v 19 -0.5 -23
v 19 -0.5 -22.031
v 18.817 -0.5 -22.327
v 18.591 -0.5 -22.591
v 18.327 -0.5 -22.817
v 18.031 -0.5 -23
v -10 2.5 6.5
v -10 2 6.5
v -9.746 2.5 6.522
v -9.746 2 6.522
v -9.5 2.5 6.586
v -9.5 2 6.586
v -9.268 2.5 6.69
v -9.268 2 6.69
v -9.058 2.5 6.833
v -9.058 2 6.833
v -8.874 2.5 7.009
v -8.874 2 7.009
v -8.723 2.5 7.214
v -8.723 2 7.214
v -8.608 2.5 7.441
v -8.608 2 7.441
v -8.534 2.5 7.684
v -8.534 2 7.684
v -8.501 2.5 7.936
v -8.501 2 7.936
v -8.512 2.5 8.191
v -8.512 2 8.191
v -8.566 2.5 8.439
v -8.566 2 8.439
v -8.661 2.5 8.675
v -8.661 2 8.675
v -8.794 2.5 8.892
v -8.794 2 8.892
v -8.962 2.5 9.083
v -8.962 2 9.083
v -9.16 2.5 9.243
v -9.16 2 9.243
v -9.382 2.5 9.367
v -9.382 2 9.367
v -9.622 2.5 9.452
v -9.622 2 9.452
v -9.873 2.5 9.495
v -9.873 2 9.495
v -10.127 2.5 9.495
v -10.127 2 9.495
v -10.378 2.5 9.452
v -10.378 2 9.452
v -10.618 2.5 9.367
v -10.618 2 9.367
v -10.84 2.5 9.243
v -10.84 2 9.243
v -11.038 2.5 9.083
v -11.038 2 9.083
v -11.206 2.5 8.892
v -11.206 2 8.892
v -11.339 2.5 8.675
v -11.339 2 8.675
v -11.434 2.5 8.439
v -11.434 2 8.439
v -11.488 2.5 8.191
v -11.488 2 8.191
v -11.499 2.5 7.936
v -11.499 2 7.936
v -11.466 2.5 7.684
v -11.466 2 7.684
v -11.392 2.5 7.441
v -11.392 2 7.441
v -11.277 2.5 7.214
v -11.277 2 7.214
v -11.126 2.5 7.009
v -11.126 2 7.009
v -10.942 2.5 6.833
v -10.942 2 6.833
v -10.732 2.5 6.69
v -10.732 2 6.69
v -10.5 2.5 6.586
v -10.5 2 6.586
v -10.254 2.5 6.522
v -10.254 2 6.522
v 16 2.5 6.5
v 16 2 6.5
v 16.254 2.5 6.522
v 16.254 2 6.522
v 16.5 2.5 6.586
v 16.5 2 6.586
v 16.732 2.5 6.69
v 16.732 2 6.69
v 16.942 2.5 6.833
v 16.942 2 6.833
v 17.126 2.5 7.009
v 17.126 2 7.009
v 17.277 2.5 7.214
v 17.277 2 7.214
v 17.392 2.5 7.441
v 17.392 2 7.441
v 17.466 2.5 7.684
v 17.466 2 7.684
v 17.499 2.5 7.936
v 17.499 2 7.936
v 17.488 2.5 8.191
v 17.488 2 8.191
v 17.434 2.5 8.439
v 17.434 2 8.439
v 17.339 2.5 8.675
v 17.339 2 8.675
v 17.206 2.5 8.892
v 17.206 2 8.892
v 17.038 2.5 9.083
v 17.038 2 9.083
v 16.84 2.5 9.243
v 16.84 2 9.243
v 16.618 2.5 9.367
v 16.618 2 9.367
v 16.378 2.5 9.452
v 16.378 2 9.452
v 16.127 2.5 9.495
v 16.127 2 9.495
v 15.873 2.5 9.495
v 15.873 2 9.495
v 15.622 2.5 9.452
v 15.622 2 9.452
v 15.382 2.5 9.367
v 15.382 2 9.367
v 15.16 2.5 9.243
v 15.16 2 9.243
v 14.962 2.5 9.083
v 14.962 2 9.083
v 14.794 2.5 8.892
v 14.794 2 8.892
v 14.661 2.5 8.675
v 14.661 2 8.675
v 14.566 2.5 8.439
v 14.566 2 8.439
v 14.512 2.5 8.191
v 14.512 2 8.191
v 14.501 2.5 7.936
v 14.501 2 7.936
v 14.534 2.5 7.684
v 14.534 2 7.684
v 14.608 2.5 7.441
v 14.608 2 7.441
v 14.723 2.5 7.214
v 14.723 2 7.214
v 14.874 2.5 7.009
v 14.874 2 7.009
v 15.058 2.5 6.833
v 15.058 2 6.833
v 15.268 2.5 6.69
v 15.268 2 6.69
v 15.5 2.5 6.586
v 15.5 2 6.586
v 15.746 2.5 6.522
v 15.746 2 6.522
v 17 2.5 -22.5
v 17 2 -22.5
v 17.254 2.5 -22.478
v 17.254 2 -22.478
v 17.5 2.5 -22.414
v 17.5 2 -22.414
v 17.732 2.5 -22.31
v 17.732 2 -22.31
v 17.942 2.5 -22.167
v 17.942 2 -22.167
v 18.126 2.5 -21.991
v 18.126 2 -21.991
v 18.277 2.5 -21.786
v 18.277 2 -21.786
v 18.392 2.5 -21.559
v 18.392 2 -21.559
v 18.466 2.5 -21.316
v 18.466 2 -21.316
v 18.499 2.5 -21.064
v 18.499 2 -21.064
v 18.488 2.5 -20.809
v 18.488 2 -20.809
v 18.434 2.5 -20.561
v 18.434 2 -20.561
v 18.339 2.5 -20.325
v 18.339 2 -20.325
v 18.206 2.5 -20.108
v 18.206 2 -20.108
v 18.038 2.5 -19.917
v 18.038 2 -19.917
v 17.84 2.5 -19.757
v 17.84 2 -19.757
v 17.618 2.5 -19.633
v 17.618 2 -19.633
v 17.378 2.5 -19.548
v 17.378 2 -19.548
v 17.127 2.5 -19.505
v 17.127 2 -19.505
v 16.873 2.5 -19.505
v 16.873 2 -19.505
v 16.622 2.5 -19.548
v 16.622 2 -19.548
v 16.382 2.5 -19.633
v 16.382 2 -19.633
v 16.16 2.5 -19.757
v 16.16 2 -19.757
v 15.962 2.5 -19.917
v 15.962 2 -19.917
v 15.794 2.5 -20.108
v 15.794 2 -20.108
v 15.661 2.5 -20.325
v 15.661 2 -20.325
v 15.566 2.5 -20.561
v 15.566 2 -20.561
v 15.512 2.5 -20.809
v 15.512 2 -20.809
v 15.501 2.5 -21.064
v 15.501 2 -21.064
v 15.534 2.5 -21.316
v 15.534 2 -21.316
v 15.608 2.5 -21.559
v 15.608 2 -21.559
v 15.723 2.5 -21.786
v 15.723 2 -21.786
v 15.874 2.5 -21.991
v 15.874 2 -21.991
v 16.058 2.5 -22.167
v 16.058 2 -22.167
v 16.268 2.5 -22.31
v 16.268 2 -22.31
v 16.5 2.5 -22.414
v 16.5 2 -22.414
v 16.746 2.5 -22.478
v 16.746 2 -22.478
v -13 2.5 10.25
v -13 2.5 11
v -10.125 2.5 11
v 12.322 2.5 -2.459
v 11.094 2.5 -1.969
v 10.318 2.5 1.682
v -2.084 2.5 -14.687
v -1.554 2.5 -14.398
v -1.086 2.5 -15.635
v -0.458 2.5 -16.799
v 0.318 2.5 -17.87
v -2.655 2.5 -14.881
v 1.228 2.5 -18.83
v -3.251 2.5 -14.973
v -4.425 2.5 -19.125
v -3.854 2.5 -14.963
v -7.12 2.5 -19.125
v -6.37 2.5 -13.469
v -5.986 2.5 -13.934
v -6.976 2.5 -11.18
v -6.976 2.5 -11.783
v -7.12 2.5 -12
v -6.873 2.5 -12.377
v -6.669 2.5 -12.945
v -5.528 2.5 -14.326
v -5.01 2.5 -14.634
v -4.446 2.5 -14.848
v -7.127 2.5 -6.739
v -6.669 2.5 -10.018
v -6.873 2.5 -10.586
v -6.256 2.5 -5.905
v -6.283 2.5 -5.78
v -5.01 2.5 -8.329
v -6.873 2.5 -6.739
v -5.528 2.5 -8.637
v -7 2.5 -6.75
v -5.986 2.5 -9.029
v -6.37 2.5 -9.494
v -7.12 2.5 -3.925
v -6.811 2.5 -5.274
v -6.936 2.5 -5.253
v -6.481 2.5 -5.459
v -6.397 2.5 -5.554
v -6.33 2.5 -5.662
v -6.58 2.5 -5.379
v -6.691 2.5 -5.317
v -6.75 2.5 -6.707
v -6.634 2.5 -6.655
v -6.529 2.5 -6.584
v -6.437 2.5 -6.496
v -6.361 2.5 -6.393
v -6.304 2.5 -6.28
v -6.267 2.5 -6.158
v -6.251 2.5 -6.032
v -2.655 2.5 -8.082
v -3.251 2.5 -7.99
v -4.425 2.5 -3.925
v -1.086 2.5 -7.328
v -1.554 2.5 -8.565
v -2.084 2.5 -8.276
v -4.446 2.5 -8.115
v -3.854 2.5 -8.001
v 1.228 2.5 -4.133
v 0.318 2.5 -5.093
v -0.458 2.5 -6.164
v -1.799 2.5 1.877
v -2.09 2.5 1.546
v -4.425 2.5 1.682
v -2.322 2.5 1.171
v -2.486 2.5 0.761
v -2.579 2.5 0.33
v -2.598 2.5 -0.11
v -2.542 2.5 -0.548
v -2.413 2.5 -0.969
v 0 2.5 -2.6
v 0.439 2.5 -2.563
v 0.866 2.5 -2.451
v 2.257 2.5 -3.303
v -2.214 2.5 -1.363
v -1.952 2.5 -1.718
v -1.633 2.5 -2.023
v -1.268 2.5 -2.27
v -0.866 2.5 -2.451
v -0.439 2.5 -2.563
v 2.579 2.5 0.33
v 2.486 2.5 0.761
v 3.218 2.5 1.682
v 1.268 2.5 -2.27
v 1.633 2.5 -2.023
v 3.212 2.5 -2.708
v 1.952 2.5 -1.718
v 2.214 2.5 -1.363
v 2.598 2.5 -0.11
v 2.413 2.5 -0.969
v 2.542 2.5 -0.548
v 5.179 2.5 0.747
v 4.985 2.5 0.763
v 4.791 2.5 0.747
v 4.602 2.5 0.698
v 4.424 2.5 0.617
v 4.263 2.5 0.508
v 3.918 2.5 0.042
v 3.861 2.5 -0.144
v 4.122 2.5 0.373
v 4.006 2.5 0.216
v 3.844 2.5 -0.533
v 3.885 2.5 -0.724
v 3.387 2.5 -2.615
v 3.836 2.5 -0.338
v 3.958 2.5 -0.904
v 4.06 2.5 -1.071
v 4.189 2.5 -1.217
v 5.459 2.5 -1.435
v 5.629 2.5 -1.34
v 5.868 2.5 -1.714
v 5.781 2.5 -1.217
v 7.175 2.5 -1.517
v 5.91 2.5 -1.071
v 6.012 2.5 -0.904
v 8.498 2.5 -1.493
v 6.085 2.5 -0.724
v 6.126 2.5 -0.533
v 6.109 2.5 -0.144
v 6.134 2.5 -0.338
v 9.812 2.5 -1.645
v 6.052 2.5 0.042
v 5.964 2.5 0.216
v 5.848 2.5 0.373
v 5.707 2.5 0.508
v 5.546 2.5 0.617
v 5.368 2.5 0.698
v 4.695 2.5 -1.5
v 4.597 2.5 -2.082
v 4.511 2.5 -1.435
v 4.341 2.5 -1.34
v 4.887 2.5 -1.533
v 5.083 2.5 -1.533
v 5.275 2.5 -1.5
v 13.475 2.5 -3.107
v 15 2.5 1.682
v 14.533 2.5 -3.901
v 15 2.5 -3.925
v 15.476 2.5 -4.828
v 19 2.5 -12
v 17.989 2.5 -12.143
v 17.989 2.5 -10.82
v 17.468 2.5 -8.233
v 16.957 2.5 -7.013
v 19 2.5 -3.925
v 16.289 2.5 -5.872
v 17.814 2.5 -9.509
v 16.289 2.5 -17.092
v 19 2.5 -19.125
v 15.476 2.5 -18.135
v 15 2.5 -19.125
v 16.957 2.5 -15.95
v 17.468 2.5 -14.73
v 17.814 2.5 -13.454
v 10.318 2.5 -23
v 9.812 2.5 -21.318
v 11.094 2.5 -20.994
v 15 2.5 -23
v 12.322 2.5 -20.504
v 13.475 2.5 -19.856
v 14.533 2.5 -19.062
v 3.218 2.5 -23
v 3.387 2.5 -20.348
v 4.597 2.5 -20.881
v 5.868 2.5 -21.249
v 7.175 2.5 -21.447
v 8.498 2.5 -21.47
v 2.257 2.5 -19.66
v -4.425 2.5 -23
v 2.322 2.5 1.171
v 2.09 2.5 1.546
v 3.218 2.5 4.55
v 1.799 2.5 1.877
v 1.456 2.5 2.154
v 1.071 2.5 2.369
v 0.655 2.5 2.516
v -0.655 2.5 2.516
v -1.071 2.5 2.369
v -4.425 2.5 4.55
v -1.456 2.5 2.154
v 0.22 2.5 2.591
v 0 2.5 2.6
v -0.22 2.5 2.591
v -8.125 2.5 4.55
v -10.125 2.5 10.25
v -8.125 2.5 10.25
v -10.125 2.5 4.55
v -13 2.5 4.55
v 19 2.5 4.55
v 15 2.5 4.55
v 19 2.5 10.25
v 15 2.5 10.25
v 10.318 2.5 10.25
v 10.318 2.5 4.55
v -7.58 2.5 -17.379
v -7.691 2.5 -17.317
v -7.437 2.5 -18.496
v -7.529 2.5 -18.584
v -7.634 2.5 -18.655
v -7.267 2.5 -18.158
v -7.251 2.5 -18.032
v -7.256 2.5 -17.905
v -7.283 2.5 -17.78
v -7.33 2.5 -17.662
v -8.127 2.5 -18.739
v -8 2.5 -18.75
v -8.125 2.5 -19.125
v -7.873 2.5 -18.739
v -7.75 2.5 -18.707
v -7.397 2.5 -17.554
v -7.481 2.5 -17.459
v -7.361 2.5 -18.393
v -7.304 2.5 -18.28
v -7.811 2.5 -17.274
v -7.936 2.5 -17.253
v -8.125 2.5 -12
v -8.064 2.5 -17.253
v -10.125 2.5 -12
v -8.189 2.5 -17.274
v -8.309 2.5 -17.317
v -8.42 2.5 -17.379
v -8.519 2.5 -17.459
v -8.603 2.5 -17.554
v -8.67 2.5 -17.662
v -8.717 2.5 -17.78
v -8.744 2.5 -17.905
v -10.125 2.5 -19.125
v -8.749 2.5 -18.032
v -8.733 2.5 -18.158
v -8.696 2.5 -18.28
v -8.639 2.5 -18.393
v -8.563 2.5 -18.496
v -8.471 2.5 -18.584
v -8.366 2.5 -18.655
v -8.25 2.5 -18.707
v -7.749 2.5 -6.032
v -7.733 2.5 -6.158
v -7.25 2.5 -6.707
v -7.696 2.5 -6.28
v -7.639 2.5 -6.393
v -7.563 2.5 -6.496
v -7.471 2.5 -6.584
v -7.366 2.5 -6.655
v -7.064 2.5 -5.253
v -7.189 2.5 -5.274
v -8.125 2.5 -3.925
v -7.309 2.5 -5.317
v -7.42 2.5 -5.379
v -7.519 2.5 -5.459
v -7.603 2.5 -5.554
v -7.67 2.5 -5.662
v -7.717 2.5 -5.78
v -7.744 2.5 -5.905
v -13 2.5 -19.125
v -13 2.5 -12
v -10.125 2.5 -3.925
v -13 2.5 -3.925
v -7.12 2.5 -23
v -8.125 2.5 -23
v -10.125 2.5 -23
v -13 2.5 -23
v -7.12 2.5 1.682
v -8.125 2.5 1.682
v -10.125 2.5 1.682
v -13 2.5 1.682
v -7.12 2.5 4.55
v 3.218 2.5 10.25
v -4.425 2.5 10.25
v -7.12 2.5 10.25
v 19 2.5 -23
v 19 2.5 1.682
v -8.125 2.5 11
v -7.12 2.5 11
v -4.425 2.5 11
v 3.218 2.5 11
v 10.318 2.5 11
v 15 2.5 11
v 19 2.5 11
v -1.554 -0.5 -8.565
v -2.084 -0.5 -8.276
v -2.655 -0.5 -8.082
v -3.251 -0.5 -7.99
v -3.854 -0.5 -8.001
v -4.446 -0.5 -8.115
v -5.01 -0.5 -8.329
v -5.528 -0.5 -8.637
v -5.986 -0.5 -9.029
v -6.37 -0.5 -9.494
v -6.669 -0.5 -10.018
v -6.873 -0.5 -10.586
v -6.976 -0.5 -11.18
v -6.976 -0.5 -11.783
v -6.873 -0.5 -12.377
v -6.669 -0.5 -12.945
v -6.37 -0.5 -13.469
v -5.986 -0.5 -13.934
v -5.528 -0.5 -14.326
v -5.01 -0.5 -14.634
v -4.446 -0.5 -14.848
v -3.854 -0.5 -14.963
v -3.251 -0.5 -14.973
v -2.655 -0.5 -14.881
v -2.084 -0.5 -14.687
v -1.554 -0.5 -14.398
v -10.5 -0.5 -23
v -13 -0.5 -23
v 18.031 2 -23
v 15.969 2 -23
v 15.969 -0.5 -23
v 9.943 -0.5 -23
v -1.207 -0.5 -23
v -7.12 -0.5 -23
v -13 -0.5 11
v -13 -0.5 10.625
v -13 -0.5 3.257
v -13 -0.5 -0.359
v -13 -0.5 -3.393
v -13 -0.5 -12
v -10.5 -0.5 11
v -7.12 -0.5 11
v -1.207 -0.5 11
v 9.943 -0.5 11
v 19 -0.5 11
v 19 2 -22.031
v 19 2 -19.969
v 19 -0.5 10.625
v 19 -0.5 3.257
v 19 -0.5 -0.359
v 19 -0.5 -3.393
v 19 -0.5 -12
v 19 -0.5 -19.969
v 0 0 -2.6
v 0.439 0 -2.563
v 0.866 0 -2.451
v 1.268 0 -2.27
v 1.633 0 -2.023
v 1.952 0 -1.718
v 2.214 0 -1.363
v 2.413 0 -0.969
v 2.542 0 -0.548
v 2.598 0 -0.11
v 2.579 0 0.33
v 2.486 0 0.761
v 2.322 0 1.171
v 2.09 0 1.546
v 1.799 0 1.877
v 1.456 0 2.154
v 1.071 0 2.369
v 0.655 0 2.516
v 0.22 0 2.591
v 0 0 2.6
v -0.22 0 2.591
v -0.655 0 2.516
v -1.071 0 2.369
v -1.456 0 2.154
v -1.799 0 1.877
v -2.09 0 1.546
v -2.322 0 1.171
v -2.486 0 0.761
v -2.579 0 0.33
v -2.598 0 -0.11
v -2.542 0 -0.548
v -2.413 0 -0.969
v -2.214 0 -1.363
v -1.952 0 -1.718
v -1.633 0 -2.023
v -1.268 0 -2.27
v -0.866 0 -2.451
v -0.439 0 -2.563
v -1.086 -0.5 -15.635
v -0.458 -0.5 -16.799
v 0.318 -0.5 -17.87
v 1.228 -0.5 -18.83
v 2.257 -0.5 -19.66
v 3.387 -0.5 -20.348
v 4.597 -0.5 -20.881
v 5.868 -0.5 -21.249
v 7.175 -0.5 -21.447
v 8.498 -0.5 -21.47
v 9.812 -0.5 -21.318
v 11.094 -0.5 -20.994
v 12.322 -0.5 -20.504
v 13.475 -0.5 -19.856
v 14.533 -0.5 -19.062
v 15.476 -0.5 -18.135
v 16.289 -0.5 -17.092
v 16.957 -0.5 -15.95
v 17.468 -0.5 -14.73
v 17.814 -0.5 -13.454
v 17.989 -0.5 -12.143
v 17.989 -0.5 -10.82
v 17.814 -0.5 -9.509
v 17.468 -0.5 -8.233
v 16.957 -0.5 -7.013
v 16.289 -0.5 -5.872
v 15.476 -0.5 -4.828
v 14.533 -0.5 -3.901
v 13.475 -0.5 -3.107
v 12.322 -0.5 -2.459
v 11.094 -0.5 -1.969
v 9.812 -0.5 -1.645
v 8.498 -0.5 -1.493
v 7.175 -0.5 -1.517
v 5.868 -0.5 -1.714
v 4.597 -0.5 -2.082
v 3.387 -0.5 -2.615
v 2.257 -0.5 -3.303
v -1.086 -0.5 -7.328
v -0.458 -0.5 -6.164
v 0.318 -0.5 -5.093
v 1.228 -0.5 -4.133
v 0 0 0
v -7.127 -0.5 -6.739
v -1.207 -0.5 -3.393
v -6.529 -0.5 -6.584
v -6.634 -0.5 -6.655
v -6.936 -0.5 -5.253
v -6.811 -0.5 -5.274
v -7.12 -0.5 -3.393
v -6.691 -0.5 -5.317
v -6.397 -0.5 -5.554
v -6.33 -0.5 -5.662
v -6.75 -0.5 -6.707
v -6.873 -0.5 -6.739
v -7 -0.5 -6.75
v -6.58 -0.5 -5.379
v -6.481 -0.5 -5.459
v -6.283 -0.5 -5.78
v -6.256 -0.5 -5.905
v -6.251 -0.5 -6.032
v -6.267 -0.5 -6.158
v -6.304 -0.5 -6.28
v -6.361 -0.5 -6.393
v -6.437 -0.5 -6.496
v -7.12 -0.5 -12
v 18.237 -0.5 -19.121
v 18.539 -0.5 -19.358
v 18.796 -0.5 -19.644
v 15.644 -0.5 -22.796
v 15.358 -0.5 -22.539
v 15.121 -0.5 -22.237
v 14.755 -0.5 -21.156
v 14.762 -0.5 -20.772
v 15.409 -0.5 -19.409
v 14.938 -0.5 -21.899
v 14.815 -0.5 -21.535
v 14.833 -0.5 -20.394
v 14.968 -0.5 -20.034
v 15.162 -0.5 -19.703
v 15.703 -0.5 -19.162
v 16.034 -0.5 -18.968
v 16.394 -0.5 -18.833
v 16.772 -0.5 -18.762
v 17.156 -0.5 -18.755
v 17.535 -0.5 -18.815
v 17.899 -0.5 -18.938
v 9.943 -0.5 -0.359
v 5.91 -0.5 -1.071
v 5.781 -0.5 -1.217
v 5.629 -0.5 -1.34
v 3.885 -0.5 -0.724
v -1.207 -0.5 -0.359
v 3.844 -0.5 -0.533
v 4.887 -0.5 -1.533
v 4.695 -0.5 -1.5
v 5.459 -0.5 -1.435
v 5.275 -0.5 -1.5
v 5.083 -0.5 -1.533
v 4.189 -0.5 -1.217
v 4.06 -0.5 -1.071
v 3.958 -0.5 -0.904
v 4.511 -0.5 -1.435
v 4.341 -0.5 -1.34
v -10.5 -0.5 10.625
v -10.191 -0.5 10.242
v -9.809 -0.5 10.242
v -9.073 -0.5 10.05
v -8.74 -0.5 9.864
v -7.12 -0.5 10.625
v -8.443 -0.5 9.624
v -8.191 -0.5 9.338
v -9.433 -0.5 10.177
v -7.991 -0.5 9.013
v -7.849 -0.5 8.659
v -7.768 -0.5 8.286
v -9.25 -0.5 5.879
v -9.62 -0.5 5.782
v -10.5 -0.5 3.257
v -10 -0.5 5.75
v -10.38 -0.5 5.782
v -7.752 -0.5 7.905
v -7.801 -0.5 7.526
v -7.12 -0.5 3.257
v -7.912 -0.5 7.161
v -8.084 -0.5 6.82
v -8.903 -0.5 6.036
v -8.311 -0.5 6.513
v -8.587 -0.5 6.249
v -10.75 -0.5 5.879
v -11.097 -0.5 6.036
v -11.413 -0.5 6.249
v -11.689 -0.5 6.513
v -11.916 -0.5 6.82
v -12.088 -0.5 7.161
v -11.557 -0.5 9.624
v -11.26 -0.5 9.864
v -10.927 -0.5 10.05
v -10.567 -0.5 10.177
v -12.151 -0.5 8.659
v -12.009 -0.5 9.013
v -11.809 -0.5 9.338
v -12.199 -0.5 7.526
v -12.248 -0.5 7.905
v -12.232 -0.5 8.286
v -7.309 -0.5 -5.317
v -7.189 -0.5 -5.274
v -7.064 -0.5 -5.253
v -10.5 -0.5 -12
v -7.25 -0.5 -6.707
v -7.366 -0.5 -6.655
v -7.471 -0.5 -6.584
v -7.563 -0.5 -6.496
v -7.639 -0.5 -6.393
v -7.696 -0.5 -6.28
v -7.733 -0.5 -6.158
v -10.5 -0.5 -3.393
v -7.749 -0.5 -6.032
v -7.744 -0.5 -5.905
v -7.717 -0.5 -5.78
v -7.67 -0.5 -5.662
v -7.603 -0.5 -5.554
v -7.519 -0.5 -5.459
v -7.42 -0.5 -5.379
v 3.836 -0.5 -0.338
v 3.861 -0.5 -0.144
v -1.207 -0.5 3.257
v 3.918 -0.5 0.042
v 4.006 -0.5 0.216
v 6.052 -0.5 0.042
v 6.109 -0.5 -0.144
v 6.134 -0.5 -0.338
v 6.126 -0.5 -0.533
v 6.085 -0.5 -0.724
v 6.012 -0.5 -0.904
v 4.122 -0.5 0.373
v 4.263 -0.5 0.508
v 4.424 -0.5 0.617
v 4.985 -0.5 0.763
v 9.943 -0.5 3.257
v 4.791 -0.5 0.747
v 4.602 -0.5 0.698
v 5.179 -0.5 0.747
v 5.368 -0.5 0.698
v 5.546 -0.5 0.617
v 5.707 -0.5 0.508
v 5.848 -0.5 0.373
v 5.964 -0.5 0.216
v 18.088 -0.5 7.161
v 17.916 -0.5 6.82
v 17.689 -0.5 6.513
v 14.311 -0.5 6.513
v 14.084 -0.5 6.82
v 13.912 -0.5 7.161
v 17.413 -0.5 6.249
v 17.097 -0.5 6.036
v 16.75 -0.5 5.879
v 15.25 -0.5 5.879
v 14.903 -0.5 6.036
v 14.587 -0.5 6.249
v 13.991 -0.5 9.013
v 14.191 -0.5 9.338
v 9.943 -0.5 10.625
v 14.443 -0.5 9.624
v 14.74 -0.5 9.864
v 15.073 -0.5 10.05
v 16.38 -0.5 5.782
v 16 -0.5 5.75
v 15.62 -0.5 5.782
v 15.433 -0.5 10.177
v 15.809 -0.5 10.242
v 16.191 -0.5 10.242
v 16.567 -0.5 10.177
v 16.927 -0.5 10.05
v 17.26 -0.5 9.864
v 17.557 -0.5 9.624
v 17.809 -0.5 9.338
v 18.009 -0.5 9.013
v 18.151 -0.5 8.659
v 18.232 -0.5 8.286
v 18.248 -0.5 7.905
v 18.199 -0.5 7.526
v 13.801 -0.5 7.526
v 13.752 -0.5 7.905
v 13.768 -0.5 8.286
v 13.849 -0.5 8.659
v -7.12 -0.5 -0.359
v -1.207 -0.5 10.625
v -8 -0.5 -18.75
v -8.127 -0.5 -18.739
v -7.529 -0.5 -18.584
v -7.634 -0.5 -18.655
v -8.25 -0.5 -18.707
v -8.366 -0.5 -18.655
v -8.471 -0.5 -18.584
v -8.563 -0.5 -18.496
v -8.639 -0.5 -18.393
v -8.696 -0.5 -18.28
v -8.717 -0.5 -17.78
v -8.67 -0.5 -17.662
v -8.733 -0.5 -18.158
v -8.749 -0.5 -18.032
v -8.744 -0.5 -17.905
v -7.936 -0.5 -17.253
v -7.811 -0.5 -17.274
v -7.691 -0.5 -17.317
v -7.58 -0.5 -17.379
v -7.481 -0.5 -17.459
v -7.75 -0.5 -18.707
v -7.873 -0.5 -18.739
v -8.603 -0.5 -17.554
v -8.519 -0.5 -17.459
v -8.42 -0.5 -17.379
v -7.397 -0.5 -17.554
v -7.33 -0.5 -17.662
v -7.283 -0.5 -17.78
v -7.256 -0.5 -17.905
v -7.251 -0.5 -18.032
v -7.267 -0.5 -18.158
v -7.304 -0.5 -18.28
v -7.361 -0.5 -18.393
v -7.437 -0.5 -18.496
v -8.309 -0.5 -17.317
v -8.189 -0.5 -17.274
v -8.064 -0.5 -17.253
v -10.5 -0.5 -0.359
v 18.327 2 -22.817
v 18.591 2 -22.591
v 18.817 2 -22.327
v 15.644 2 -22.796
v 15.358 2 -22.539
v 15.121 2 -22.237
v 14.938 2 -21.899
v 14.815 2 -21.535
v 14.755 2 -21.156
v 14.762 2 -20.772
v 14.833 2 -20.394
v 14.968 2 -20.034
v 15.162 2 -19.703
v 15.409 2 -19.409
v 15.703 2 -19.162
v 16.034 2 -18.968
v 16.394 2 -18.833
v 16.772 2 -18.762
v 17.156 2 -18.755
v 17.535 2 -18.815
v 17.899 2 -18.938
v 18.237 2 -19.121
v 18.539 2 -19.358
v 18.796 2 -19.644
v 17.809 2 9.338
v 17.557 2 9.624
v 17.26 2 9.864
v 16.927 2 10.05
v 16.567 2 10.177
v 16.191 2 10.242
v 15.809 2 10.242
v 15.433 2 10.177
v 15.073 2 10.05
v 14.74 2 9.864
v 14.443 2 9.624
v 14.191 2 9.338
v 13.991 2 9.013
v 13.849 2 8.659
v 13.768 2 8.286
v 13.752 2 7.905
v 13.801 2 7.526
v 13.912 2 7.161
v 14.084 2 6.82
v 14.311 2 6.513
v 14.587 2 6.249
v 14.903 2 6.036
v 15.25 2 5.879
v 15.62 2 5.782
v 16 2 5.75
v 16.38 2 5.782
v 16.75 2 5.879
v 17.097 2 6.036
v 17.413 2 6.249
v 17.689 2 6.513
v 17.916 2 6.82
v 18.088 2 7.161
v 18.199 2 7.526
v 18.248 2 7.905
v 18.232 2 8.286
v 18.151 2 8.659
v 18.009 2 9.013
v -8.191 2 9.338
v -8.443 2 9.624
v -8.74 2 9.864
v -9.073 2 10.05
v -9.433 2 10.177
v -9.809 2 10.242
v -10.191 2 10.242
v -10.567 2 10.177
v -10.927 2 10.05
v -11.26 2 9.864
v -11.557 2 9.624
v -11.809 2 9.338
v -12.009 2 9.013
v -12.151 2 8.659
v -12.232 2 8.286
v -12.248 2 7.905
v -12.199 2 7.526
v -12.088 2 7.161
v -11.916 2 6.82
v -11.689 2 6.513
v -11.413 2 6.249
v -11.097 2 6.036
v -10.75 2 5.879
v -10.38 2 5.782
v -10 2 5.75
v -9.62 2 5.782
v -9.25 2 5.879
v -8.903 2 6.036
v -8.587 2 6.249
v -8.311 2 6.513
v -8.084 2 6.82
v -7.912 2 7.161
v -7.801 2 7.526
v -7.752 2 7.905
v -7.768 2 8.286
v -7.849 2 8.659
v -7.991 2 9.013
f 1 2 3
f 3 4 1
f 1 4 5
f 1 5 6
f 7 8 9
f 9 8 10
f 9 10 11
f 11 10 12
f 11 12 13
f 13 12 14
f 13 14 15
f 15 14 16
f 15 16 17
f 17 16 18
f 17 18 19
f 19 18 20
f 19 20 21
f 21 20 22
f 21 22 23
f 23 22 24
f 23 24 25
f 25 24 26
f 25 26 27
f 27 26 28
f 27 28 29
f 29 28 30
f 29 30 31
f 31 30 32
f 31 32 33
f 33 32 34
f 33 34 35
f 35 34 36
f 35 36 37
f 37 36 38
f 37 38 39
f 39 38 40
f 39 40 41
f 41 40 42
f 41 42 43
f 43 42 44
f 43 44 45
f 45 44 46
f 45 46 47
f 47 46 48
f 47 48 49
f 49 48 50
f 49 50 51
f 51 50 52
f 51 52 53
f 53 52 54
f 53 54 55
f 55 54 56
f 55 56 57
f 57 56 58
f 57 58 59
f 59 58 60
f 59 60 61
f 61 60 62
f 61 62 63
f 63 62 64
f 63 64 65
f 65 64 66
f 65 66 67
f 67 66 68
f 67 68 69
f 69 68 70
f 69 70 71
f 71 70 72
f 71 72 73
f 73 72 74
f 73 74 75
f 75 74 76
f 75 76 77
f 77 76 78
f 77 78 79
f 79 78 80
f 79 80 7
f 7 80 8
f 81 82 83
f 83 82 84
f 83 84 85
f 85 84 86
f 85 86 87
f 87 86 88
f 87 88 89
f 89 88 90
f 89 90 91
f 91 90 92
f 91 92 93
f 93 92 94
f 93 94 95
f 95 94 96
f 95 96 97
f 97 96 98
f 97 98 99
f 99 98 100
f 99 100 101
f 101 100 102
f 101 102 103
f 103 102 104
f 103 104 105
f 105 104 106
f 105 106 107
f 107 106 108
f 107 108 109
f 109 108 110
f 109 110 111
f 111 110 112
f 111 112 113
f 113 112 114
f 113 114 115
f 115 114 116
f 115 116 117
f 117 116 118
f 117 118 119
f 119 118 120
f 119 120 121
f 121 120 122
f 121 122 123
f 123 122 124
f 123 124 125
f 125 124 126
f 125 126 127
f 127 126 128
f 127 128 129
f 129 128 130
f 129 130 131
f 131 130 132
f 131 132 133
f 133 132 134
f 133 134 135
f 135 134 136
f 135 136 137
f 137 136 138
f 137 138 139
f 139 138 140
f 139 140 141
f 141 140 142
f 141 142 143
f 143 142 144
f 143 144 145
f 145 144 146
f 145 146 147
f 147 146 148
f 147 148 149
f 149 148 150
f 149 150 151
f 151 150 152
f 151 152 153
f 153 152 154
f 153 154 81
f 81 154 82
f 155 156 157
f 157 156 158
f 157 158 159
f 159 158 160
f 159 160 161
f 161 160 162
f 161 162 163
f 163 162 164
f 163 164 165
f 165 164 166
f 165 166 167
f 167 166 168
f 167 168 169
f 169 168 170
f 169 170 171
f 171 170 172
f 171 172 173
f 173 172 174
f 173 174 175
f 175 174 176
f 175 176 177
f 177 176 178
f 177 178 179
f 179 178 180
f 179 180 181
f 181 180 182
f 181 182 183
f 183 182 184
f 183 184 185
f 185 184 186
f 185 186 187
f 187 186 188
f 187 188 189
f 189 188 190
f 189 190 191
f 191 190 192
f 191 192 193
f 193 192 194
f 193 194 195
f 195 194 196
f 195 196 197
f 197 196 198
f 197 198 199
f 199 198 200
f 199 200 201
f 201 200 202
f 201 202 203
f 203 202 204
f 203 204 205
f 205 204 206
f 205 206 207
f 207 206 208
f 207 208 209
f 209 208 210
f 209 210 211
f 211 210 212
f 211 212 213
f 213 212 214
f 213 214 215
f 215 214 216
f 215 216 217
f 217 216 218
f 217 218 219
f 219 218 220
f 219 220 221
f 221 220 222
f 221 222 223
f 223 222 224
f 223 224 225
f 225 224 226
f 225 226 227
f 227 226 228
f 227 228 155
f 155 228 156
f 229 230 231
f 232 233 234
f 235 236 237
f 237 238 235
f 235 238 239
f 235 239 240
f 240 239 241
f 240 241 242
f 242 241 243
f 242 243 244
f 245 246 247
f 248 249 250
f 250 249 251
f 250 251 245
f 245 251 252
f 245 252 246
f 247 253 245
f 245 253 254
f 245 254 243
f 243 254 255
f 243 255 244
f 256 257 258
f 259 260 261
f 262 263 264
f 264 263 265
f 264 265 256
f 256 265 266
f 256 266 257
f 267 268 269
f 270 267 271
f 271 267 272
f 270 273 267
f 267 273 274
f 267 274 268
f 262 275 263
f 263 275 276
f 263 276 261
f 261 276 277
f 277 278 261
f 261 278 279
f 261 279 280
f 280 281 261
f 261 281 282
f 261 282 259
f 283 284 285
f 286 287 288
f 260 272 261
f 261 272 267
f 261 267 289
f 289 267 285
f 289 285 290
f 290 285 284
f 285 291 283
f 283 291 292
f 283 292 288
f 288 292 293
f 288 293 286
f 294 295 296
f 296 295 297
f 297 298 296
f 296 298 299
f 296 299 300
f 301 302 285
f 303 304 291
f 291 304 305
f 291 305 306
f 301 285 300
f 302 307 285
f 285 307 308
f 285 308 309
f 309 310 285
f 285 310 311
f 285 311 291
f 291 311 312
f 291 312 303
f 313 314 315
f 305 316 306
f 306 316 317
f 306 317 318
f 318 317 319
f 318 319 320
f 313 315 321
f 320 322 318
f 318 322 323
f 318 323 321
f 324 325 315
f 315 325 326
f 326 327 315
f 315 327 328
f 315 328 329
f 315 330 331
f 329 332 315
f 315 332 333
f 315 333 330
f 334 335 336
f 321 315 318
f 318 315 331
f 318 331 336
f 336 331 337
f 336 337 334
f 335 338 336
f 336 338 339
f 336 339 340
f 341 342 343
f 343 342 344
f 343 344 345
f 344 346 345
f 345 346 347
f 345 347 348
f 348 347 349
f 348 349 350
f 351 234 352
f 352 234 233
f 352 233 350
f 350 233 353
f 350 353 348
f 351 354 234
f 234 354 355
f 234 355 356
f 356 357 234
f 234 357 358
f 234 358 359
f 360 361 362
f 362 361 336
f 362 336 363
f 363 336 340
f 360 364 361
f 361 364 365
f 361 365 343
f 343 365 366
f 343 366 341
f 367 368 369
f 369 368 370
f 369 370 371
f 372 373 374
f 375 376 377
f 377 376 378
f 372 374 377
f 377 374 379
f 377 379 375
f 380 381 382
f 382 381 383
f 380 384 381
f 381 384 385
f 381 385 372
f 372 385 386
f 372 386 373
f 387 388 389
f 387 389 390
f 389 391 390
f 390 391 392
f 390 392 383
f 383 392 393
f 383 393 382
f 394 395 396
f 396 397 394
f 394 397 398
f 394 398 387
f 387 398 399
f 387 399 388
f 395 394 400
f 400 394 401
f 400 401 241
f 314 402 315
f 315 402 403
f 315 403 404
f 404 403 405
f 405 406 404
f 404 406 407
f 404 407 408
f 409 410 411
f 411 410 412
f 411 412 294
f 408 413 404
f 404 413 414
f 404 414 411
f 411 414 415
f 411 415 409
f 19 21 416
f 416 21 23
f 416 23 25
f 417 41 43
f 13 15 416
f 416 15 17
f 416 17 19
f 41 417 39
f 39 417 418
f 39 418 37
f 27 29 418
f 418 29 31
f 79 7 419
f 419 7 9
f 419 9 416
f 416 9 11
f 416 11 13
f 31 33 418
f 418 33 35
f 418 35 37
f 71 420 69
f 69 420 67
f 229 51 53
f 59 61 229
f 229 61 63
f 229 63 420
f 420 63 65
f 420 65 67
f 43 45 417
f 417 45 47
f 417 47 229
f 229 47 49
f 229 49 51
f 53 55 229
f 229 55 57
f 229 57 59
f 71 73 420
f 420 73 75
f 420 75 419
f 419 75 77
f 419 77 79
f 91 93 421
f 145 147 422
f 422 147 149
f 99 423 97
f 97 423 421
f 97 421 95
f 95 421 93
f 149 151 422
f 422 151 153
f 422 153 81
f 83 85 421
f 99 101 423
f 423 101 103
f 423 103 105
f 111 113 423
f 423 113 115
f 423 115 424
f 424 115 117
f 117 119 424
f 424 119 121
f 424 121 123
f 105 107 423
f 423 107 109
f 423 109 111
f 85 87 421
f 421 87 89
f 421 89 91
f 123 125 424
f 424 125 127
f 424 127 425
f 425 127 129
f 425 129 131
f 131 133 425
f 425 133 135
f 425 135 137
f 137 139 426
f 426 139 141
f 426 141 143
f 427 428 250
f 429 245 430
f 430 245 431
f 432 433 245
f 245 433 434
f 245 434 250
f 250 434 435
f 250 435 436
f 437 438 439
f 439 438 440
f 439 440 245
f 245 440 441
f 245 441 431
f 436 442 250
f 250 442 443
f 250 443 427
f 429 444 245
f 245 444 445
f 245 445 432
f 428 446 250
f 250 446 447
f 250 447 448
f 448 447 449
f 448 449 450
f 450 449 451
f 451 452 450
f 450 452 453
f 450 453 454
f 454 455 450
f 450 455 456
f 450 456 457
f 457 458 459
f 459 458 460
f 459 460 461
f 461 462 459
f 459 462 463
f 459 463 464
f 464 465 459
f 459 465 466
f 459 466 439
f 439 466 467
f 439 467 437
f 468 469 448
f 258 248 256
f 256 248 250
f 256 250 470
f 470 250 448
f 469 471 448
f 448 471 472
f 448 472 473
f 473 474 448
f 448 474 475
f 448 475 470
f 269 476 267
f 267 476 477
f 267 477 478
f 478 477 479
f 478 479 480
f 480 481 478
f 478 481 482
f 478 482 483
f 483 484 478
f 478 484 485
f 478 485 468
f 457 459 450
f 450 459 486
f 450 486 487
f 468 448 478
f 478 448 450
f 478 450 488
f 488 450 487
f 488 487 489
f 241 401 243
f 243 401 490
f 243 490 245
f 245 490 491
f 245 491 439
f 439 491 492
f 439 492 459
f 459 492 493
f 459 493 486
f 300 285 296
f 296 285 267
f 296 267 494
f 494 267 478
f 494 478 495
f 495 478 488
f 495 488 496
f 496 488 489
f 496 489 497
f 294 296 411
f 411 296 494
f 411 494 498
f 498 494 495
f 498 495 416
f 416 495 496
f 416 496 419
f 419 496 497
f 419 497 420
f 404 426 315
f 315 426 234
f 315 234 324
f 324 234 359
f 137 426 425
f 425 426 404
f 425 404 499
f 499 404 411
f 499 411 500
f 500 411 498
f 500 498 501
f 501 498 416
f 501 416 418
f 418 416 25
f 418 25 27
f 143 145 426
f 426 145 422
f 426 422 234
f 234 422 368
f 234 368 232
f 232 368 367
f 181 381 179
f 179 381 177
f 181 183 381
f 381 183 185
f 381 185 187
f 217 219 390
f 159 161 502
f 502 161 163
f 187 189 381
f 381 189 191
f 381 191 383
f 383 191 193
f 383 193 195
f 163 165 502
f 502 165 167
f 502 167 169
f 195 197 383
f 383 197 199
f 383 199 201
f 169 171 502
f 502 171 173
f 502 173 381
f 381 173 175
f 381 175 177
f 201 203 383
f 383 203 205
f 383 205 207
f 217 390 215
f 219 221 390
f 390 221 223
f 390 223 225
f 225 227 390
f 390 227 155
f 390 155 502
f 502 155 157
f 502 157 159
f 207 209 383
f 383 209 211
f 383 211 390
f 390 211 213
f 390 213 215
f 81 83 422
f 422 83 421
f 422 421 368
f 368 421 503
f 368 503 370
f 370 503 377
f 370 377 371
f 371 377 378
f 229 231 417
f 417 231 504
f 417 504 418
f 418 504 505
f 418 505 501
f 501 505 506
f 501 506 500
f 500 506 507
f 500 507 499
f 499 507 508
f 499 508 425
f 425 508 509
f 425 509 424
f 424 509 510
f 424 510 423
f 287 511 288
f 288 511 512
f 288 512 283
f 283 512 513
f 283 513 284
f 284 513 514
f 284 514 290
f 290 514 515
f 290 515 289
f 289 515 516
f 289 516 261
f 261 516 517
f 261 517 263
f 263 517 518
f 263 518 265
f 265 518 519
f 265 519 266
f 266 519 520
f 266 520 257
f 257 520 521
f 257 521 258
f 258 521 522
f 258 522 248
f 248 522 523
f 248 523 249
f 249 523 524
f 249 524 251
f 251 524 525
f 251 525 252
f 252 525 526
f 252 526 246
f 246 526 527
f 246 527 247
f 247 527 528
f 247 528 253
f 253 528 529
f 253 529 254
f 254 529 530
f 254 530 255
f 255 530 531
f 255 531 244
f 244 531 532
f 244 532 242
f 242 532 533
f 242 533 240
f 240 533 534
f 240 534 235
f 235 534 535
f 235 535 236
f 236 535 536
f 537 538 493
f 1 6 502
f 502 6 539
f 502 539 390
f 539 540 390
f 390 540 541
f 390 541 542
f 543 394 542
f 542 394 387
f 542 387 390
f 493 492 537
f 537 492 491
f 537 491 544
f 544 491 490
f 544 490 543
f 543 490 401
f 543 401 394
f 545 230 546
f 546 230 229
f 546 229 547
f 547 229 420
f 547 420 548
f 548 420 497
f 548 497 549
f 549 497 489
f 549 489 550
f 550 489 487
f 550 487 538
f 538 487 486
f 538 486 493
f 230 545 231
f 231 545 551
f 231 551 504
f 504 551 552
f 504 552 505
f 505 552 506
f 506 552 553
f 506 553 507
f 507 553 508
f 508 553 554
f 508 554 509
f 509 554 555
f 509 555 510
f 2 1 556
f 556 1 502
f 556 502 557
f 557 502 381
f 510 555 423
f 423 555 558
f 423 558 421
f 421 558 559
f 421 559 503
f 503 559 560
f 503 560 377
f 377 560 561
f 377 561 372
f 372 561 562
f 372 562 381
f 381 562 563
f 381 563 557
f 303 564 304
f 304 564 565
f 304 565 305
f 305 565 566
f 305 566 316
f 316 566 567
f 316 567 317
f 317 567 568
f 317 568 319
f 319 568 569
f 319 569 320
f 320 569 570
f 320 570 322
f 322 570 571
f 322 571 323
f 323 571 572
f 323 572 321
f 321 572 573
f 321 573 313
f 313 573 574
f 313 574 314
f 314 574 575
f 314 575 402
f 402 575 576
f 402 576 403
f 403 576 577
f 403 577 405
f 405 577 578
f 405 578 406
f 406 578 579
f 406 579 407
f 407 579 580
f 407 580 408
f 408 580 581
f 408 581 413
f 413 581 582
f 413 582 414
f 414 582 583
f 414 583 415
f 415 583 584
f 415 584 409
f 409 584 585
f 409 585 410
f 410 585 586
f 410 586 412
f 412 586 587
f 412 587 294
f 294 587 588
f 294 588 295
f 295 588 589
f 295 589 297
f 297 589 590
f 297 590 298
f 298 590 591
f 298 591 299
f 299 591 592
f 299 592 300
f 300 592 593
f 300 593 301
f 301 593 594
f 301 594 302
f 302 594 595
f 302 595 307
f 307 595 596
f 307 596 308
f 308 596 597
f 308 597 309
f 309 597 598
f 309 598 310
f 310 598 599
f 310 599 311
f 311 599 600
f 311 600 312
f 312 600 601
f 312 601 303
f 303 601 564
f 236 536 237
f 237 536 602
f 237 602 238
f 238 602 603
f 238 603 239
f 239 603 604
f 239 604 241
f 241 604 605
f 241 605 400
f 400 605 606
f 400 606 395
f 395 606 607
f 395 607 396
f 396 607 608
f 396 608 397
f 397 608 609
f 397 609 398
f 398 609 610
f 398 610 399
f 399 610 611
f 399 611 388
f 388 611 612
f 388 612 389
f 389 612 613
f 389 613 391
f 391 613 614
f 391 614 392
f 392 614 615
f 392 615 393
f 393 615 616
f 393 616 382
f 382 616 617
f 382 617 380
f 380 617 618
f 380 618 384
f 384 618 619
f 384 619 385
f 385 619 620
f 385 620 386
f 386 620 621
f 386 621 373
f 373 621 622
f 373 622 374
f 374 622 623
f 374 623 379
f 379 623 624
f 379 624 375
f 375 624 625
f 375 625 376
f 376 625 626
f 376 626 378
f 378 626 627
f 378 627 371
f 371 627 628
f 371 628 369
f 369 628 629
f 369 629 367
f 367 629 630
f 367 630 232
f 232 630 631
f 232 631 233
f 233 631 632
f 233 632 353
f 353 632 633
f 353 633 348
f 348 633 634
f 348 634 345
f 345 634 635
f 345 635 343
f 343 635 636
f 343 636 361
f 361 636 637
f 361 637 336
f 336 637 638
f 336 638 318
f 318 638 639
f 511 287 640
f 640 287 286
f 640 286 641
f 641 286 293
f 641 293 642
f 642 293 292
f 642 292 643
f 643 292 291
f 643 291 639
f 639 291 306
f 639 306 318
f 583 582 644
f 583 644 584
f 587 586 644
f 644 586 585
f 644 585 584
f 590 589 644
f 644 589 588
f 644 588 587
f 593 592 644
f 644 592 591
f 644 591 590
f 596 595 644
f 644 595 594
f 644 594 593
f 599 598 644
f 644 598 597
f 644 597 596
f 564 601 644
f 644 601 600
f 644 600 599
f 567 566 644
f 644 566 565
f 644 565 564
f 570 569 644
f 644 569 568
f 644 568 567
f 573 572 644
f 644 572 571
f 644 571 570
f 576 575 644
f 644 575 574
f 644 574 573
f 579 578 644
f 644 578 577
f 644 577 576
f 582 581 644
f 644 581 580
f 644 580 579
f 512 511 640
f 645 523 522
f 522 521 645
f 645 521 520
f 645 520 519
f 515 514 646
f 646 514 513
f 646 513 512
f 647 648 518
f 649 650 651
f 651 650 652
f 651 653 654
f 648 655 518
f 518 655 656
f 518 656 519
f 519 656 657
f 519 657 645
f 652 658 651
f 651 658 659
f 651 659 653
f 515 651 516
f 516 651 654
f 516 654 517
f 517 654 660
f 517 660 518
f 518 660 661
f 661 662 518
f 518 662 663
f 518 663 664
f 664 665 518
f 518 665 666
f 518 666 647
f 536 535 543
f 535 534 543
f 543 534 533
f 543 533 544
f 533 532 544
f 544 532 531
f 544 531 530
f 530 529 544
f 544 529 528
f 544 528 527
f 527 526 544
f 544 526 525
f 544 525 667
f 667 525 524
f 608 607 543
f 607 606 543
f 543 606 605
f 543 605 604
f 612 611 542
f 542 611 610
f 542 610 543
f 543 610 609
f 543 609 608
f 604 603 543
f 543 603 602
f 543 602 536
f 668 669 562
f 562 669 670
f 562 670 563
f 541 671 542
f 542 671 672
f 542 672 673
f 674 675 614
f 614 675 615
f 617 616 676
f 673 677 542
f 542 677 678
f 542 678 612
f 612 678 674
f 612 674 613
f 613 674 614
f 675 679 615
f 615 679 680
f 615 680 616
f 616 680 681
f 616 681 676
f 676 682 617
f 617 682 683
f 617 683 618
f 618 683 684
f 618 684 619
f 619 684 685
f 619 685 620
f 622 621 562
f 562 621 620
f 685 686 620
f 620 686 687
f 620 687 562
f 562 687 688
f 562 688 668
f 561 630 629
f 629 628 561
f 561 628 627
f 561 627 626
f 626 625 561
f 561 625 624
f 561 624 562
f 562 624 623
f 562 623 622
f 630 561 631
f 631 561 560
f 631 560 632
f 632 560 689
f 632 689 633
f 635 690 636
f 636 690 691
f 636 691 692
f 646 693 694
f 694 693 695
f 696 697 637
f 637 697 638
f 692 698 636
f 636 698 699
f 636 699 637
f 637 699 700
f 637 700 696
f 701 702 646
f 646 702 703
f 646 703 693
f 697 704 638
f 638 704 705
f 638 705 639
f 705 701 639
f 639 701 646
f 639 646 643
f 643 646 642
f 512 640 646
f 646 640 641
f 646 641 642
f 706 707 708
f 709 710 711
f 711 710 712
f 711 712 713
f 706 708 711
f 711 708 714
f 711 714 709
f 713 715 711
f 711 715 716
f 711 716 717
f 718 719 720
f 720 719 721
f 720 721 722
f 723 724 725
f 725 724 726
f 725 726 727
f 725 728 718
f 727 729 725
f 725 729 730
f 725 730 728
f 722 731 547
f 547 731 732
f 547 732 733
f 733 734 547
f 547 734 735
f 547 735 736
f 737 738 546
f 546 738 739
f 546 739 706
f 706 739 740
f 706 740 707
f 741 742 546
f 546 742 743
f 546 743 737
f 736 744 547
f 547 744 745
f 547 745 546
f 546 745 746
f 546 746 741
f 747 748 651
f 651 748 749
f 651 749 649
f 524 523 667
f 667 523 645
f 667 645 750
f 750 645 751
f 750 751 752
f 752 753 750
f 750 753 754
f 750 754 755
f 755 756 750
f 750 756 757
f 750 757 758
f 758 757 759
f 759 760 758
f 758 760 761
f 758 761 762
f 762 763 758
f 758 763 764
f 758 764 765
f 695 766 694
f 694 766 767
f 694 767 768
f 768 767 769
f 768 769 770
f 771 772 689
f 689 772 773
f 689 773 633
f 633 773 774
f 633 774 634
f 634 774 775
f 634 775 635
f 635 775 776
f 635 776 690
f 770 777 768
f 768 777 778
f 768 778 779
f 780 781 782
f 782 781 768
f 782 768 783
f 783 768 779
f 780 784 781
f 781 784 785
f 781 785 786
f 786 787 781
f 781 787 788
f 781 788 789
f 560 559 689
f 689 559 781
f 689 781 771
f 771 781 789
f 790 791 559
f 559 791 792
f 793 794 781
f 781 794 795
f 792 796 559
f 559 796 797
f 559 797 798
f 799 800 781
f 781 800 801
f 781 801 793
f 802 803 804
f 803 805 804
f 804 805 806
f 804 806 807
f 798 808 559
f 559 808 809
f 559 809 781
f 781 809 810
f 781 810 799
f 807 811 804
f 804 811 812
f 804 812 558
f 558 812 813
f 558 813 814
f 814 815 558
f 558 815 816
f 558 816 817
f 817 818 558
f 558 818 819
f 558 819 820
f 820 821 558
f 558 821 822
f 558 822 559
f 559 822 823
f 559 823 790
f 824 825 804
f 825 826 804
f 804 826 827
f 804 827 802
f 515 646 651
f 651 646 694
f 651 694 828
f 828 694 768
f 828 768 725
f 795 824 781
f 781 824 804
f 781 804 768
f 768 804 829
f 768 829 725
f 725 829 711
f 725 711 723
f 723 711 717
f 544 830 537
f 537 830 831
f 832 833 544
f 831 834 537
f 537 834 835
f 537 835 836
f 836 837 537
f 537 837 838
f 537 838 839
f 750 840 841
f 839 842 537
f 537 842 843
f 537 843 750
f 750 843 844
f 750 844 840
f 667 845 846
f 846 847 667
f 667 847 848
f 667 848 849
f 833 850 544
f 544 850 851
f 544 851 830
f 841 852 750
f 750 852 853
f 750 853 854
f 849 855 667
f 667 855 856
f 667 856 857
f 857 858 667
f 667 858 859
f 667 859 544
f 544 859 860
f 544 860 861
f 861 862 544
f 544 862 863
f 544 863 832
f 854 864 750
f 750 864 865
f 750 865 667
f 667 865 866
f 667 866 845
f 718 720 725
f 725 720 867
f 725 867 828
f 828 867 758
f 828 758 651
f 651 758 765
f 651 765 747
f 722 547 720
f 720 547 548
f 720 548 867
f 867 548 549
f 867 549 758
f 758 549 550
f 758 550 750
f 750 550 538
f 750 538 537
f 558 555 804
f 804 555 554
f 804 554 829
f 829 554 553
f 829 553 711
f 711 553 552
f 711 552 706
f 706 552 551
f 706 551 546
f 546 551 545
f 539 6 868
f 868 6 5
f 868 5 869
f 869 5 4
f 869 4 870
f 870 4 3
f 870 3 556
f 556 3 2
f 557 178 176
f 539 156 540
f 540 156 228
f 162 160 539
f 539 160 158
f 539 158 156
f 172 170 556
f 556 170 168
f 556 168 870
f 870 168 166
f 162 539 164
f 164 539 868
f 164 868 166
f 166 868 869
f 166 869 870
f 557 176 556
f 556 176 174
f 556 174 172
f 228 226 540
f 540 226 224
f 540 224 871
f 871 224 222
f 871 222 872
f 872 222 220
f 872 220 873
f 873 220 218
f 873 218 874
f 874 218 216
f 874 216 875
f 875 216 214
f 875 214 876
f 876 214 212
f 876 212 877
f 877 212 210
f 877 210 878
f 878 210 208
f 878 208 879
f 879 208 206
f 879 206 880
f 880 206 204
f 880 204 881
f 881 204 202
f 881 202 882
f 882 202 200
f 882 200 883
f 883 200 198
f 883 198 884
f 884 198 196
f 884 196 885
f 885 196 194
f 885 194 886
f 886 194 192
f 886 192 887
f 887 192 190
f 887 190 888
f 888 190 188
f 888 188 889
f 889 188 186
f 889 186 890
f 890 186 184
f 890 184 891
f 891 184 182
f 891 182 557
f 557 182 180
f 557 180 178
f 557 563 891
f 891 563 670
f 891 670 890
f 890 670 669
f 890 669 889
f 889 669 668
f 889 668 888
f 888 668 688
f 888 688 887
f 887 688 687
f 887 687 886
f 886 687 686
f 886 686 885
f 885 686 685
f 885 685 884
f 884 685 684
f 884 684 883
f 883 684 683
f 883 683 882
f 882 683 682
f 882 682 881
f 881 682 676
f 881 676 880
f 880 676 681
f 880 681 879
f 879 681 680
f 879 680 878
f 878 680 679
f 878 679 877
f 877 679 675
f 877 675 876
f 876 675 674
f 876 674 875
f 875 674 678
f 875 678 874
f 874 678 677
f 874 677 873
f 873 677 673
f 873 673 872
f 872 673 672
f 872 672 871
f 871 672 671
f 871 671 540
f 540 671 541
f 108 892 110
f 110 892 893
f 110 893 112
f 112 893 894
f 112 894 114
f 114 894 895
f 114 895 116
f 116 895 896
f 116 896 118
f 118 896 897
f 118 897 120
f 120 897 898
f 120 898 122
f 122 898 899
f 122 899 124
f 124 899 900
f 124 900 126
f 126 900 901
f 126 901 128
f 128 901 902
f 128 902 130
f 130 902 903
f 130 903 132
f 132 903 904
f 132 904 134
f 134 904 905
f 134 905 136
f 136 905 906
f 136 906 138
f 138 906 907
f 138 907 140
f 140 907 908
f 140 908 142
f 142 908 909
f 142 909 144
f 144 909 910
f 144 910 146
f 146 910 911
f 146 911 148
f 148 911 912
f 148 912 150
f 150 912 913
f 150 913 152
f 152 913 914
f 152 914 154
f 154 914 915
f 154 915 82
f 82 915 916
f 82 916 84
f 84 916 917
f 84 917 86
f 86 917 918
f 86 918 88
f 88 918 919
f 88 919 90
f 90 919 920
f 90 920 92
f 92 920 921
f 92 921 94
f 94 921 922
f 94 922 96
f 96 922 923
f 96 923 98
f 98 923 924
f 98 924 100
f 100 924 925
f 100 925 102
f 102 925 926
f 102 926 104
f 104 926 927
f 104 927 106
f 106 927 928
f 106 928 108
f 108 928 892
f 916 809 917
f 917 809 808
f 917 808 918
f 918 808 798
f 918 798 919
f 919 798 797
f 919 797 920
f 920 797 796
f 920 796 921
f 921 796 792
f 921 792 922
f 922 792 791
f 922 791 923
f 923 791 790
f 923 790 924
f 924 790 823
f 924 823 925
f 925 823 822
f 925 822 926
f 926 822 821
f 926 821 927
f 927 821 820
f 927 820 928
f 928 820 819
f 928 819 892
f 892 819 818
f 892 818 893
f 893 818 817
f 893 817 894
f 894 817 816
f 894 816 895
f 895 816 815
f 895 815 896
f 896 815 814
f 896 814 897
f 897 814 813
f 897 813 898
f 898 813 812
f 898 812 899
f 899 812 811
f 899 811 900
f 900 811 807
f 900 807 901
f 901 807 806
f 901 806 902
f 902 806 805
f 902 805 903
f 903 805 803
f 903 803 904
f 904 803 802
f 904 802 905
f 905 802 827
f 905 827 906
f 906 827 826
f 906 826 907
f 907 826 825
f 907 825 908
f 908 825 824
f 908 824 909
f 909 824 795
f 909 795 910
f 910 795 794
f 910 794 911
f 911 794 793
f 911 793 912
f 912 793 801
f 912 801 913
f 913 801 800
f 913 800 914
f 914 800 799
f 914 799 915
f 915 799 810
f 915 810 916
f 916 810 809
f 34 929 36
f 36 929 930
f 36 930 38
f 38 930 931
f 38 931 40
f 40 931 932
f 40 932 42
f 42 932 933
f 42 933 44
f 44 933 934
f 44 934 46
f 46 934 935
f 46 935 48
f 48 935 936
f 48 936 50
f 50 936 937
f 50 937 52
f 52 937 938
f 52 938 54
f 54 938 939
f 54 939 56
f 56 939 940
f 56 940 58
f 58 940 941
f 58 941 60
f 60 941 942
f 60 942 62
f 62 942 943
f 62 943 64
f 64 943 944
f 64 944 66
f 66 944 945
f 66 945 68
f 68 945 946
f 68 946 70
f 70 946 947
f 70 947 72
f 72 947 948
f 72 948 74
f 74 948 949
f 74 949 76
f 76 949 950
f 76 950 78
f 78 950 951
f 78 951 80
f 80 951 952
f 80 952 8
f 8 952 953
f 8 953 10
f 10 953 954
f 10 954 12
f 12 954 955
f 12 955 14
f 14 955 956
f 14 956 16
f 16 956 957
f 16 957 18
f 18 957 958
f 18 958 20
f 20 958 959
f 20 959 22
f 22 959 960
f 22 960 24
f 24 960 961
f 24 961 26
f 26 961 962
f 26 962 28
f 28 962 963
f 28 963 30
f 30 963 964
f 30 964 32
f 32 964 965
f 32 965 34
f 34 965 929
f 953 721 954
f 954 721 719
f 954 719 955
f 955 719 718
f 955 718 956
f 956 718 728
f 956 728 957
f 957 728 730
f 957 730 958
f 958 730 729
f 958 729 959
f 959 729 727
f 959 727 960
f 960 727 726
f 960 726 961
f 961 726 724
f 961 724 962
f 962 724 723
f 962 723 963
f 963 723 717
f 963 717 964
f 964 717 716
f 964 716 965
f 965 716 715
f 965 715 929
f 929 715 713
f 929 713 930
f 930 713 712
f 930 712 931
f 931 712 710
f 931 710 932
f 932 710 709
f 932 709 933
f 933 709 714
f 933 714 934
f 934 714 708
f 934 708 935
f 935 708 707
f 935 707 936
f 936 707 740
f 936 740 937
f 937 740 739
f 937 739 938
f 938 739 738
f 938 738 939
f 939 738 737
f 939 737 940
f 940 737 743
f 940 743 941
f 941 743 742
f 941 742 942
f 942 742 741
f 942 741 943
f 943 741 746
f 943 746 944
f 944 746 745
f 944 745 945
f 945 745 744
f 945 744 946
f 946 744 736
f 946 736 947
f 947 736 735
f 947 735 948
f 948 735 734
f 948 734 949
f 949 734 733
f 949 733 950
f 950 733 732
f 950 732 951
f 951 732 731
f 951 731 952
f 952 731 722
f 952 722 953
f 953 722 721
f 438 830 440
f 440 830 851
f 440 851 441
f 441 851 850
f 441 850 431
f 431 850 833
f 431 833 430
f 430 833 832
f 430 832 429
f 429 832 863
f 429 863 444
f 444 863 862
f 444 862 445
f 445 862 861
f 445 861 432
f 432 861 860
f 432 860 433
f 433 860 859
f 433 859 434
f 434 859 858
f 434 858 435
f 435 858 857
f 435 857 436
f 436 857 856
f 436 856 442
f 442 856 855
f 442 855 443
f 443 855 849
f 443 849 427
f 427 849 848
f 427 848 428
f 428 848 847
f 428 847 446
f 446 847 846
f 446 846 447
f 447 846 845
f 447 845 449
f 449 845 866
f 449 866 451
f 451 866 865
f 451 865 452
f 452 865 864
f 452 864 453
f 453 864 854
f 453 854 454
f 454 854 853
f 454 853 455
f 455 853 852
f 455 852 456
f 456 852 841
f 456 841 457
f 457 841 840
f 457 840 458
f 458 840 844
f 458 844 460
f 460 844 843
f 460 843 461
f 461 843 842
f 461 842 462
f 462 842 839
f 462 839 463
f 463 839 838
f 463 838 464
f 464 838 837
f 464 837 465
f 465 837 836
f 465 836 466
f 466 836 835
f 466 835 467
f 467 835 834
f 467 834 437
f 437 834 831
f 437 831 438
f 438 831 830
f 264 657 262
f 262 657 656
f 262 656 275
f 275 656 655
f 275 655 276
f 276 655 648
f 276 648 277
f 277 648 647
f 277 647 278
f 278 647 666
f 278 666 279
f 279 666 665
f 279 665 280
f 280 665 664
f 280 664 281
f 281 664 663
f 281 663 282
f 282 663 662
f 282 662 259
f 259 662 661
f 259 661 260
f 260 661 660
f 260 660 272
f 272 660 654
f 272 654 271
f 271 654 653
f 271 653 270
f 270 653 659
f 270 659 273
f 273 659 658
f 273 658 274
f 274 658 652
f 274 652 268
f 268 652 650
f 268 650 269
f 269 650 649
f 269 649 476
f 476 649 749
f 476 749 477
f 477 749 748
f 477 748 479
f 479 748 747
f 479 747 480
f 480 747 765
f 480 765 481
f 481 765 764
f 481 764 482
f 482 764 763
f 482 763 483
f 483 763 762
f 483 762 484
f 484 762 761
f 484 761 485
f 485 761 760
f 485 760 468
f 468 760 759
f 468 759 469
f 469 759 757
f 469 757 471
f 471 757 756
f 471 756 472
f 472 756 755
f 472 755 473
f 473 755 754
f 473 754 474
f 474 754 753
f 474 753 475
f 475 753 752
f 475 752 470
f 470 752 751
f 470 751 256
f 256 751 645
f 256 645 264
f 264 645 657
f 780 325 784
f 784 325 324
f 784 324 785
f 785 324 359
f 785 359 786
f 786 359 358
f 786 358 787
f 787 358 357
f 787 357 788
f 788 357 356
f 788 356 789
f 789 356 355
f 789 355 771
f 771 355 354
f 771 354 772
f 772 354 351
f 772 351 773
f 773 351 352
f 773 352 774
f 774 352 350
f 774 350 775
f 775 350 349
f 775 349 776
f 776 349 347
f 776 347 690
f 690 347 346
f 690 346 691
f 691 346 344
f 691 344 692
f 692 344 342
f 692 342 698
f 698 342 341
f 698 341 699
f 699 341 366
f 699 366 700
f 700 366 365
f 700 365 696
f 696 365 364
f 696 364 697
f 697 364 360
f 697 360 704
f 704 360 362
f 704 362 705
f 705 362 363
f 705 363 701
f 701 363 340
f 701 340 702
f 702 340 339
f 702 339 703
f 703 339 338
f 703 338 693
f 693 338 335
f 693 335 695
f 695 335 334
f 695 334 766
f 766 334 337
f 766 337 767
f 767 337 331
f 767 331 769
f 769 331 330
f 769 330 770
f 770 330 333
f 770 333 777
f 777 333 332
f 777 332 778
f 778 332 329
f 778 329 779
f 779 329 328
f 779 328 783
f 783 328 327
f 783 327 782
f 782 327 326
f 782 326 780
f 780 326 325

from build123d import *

# Parameters (mm, degrees)
SKETCH_1_W               = 32
SKETCH_1_H               = 34
SKETCH_1_R               = 2.6
EXTRUDE_1_DEPTH          = 2.5
EXTRUDE_START            = -0.5
SKETCH_1_28_W            = 32
SKETCH_1_28_H            = 34
EXTRUDE_2_DEPTH          = 0.5
SKETCH_2_R               = 1.5
CUT_EXTRUDE_1_DEPTH      = 30.983328701
SKETCH_2_3_R             = 2.25
CUT_EXTRUDE_2_DEPTH      = 2.5
SKETCH_3_R               = 0.75
CUT_EXTRUDE_3_DEPTH      = 30.983328701
CUT_EXTRUDE_4_DEPTH      = 30.93743476
CUT_EXTRUDE_4_DEPTH_BACK = 30.93743476
SKETCH_1_29_R            = 1.15


with BuildPart() as part:
    # 草图1 → 凸台-拉伸1 (new body)
    with BuildSketch(Plane(origin=(0, 0, 0), x_dir=(1, 0, 0), z_dir=(0, 1, 0))):
        with Locations((3, 6)):
            Rectangle(SKETCH_1_W, SKETCH_1_H)
        with Locations(Location((0, 0, 0), (0, 0, 270))):
            Circle(SKETCH_1_R, mode=Mode.SUBTRACT)
        with BuildLine():
            ThreePointArc((-1.554347826, 8.564938654), (-6.989130435, 11.48154906), (-1.554347826, 14.398159465))
            ThreePointArc((-1.554347826, 14.398159465), (18.010869565, 11.48154906), (-1.554347826, 8.564938654))
        make_face(mode=Mode.SUBTRACT)
    extrude(amount=EXTRUDE_1_DEPTH)

    # 草图1<28> → 凸台-拉伸2 (add)
    with BuildSketch(Plane(origin=(0, 0, 0), x_dir=(1, 0, 0), z_dir=(0, 1, 0)).offset(EXTRUDE_START)):
        with Locations((3, 6)):
            Rectangle(SKETCH_1_28_W, SKETCH_1_28_H)
        with BuildLine():
            ThreePointArc((-1.554347826, 8.564938654), (-6.989130435, 11.48154906), (-1.554347826, 14.398159465))
            ThreePointArc((-1.554347826, 14.398159465), (18.010869565, 11.48154906), (-1.554347826, 8.564938654))
        make_face(mode=Mode.SUBTRACT)
    extrude(amount=EXTRUDE_2_DEPTH)

    # 草图2 → 切除-拉伸1 (cut, through all)
    with BuildSketch(Plane.XZ.offset(0.5)):
        with Locations(Location((17, -21, 0), (0, 0, 270))):
            Circle(SKETCH_2_R)
        with Locations(Location((-10, 8, 0), (0, 0, 270))):
            Circle(SKETCH_2_R)
        with Locations(Location((16, 8, 0), (0, 0, 270))):
            Circle(SKETCH_2_R)
    extrude(amount=-CUT_EXTRUDE_1_DEPTH, mode=Mode.SUBTRACT)

    # 草图2<3> → 切除-拉伸2 (cut)
    with BuildSketch(Plane.XZ.offset(0.5)):
        with Locations((17, -21)):
            Circle(SKETCH_2_3_R)
        with Locations(Location((-10, 8, 0), (0, 0, 270))):
            Circle(SKETCH_2_3_R)
        with Locations(Location((16, 8, 0), (0, 0, 270))):
            Circle(SKETCH_2_3_R)
    extrude(amount=-CUT_EXTRUDE_2_DEPTH, mode=Mode.SUBTRACT)

    # 草图3 → 切除-拉伸3 (cut, through all)
    with BuildSketch(Plane.XZ.offset(0.5)):
        with Locations(Location((-7, -6, 0), (0, 0, 270))):
            Circle(SKETCH_3_R)
        with Locations(Location((-8, -18, 0), (0, 0, 270))):
            Circle(SKETCH_3_R)
    extrude(amount=-CUT_EXTRUDE_3_DEPTH, mode=Mode.SUBTRACT)

    # 草图1<29> → 切除-拉伸4 (cut, two sides: drawn at the far end of the back side and taken through both)
    with BuildSketch(Plane(origin=(0, 0, 0), x_dir=(1, 0, 0), z_dir=(0, 1, 0)).offset(-CUT_EXTRUDE_4_DEPTH_BACK)):
        with Locations(Location((4.985018819, 0.386765274, 0), (0, 0, 270))):
            Circle(SKETCH_1_29_R)
    extrude(amount=CUT_EXTRUDE_4_DEPTH + CUT_EXTRUDE_4_DEPTH_BACK, mode=Mode.SUBTRACT)


solid = part.part
